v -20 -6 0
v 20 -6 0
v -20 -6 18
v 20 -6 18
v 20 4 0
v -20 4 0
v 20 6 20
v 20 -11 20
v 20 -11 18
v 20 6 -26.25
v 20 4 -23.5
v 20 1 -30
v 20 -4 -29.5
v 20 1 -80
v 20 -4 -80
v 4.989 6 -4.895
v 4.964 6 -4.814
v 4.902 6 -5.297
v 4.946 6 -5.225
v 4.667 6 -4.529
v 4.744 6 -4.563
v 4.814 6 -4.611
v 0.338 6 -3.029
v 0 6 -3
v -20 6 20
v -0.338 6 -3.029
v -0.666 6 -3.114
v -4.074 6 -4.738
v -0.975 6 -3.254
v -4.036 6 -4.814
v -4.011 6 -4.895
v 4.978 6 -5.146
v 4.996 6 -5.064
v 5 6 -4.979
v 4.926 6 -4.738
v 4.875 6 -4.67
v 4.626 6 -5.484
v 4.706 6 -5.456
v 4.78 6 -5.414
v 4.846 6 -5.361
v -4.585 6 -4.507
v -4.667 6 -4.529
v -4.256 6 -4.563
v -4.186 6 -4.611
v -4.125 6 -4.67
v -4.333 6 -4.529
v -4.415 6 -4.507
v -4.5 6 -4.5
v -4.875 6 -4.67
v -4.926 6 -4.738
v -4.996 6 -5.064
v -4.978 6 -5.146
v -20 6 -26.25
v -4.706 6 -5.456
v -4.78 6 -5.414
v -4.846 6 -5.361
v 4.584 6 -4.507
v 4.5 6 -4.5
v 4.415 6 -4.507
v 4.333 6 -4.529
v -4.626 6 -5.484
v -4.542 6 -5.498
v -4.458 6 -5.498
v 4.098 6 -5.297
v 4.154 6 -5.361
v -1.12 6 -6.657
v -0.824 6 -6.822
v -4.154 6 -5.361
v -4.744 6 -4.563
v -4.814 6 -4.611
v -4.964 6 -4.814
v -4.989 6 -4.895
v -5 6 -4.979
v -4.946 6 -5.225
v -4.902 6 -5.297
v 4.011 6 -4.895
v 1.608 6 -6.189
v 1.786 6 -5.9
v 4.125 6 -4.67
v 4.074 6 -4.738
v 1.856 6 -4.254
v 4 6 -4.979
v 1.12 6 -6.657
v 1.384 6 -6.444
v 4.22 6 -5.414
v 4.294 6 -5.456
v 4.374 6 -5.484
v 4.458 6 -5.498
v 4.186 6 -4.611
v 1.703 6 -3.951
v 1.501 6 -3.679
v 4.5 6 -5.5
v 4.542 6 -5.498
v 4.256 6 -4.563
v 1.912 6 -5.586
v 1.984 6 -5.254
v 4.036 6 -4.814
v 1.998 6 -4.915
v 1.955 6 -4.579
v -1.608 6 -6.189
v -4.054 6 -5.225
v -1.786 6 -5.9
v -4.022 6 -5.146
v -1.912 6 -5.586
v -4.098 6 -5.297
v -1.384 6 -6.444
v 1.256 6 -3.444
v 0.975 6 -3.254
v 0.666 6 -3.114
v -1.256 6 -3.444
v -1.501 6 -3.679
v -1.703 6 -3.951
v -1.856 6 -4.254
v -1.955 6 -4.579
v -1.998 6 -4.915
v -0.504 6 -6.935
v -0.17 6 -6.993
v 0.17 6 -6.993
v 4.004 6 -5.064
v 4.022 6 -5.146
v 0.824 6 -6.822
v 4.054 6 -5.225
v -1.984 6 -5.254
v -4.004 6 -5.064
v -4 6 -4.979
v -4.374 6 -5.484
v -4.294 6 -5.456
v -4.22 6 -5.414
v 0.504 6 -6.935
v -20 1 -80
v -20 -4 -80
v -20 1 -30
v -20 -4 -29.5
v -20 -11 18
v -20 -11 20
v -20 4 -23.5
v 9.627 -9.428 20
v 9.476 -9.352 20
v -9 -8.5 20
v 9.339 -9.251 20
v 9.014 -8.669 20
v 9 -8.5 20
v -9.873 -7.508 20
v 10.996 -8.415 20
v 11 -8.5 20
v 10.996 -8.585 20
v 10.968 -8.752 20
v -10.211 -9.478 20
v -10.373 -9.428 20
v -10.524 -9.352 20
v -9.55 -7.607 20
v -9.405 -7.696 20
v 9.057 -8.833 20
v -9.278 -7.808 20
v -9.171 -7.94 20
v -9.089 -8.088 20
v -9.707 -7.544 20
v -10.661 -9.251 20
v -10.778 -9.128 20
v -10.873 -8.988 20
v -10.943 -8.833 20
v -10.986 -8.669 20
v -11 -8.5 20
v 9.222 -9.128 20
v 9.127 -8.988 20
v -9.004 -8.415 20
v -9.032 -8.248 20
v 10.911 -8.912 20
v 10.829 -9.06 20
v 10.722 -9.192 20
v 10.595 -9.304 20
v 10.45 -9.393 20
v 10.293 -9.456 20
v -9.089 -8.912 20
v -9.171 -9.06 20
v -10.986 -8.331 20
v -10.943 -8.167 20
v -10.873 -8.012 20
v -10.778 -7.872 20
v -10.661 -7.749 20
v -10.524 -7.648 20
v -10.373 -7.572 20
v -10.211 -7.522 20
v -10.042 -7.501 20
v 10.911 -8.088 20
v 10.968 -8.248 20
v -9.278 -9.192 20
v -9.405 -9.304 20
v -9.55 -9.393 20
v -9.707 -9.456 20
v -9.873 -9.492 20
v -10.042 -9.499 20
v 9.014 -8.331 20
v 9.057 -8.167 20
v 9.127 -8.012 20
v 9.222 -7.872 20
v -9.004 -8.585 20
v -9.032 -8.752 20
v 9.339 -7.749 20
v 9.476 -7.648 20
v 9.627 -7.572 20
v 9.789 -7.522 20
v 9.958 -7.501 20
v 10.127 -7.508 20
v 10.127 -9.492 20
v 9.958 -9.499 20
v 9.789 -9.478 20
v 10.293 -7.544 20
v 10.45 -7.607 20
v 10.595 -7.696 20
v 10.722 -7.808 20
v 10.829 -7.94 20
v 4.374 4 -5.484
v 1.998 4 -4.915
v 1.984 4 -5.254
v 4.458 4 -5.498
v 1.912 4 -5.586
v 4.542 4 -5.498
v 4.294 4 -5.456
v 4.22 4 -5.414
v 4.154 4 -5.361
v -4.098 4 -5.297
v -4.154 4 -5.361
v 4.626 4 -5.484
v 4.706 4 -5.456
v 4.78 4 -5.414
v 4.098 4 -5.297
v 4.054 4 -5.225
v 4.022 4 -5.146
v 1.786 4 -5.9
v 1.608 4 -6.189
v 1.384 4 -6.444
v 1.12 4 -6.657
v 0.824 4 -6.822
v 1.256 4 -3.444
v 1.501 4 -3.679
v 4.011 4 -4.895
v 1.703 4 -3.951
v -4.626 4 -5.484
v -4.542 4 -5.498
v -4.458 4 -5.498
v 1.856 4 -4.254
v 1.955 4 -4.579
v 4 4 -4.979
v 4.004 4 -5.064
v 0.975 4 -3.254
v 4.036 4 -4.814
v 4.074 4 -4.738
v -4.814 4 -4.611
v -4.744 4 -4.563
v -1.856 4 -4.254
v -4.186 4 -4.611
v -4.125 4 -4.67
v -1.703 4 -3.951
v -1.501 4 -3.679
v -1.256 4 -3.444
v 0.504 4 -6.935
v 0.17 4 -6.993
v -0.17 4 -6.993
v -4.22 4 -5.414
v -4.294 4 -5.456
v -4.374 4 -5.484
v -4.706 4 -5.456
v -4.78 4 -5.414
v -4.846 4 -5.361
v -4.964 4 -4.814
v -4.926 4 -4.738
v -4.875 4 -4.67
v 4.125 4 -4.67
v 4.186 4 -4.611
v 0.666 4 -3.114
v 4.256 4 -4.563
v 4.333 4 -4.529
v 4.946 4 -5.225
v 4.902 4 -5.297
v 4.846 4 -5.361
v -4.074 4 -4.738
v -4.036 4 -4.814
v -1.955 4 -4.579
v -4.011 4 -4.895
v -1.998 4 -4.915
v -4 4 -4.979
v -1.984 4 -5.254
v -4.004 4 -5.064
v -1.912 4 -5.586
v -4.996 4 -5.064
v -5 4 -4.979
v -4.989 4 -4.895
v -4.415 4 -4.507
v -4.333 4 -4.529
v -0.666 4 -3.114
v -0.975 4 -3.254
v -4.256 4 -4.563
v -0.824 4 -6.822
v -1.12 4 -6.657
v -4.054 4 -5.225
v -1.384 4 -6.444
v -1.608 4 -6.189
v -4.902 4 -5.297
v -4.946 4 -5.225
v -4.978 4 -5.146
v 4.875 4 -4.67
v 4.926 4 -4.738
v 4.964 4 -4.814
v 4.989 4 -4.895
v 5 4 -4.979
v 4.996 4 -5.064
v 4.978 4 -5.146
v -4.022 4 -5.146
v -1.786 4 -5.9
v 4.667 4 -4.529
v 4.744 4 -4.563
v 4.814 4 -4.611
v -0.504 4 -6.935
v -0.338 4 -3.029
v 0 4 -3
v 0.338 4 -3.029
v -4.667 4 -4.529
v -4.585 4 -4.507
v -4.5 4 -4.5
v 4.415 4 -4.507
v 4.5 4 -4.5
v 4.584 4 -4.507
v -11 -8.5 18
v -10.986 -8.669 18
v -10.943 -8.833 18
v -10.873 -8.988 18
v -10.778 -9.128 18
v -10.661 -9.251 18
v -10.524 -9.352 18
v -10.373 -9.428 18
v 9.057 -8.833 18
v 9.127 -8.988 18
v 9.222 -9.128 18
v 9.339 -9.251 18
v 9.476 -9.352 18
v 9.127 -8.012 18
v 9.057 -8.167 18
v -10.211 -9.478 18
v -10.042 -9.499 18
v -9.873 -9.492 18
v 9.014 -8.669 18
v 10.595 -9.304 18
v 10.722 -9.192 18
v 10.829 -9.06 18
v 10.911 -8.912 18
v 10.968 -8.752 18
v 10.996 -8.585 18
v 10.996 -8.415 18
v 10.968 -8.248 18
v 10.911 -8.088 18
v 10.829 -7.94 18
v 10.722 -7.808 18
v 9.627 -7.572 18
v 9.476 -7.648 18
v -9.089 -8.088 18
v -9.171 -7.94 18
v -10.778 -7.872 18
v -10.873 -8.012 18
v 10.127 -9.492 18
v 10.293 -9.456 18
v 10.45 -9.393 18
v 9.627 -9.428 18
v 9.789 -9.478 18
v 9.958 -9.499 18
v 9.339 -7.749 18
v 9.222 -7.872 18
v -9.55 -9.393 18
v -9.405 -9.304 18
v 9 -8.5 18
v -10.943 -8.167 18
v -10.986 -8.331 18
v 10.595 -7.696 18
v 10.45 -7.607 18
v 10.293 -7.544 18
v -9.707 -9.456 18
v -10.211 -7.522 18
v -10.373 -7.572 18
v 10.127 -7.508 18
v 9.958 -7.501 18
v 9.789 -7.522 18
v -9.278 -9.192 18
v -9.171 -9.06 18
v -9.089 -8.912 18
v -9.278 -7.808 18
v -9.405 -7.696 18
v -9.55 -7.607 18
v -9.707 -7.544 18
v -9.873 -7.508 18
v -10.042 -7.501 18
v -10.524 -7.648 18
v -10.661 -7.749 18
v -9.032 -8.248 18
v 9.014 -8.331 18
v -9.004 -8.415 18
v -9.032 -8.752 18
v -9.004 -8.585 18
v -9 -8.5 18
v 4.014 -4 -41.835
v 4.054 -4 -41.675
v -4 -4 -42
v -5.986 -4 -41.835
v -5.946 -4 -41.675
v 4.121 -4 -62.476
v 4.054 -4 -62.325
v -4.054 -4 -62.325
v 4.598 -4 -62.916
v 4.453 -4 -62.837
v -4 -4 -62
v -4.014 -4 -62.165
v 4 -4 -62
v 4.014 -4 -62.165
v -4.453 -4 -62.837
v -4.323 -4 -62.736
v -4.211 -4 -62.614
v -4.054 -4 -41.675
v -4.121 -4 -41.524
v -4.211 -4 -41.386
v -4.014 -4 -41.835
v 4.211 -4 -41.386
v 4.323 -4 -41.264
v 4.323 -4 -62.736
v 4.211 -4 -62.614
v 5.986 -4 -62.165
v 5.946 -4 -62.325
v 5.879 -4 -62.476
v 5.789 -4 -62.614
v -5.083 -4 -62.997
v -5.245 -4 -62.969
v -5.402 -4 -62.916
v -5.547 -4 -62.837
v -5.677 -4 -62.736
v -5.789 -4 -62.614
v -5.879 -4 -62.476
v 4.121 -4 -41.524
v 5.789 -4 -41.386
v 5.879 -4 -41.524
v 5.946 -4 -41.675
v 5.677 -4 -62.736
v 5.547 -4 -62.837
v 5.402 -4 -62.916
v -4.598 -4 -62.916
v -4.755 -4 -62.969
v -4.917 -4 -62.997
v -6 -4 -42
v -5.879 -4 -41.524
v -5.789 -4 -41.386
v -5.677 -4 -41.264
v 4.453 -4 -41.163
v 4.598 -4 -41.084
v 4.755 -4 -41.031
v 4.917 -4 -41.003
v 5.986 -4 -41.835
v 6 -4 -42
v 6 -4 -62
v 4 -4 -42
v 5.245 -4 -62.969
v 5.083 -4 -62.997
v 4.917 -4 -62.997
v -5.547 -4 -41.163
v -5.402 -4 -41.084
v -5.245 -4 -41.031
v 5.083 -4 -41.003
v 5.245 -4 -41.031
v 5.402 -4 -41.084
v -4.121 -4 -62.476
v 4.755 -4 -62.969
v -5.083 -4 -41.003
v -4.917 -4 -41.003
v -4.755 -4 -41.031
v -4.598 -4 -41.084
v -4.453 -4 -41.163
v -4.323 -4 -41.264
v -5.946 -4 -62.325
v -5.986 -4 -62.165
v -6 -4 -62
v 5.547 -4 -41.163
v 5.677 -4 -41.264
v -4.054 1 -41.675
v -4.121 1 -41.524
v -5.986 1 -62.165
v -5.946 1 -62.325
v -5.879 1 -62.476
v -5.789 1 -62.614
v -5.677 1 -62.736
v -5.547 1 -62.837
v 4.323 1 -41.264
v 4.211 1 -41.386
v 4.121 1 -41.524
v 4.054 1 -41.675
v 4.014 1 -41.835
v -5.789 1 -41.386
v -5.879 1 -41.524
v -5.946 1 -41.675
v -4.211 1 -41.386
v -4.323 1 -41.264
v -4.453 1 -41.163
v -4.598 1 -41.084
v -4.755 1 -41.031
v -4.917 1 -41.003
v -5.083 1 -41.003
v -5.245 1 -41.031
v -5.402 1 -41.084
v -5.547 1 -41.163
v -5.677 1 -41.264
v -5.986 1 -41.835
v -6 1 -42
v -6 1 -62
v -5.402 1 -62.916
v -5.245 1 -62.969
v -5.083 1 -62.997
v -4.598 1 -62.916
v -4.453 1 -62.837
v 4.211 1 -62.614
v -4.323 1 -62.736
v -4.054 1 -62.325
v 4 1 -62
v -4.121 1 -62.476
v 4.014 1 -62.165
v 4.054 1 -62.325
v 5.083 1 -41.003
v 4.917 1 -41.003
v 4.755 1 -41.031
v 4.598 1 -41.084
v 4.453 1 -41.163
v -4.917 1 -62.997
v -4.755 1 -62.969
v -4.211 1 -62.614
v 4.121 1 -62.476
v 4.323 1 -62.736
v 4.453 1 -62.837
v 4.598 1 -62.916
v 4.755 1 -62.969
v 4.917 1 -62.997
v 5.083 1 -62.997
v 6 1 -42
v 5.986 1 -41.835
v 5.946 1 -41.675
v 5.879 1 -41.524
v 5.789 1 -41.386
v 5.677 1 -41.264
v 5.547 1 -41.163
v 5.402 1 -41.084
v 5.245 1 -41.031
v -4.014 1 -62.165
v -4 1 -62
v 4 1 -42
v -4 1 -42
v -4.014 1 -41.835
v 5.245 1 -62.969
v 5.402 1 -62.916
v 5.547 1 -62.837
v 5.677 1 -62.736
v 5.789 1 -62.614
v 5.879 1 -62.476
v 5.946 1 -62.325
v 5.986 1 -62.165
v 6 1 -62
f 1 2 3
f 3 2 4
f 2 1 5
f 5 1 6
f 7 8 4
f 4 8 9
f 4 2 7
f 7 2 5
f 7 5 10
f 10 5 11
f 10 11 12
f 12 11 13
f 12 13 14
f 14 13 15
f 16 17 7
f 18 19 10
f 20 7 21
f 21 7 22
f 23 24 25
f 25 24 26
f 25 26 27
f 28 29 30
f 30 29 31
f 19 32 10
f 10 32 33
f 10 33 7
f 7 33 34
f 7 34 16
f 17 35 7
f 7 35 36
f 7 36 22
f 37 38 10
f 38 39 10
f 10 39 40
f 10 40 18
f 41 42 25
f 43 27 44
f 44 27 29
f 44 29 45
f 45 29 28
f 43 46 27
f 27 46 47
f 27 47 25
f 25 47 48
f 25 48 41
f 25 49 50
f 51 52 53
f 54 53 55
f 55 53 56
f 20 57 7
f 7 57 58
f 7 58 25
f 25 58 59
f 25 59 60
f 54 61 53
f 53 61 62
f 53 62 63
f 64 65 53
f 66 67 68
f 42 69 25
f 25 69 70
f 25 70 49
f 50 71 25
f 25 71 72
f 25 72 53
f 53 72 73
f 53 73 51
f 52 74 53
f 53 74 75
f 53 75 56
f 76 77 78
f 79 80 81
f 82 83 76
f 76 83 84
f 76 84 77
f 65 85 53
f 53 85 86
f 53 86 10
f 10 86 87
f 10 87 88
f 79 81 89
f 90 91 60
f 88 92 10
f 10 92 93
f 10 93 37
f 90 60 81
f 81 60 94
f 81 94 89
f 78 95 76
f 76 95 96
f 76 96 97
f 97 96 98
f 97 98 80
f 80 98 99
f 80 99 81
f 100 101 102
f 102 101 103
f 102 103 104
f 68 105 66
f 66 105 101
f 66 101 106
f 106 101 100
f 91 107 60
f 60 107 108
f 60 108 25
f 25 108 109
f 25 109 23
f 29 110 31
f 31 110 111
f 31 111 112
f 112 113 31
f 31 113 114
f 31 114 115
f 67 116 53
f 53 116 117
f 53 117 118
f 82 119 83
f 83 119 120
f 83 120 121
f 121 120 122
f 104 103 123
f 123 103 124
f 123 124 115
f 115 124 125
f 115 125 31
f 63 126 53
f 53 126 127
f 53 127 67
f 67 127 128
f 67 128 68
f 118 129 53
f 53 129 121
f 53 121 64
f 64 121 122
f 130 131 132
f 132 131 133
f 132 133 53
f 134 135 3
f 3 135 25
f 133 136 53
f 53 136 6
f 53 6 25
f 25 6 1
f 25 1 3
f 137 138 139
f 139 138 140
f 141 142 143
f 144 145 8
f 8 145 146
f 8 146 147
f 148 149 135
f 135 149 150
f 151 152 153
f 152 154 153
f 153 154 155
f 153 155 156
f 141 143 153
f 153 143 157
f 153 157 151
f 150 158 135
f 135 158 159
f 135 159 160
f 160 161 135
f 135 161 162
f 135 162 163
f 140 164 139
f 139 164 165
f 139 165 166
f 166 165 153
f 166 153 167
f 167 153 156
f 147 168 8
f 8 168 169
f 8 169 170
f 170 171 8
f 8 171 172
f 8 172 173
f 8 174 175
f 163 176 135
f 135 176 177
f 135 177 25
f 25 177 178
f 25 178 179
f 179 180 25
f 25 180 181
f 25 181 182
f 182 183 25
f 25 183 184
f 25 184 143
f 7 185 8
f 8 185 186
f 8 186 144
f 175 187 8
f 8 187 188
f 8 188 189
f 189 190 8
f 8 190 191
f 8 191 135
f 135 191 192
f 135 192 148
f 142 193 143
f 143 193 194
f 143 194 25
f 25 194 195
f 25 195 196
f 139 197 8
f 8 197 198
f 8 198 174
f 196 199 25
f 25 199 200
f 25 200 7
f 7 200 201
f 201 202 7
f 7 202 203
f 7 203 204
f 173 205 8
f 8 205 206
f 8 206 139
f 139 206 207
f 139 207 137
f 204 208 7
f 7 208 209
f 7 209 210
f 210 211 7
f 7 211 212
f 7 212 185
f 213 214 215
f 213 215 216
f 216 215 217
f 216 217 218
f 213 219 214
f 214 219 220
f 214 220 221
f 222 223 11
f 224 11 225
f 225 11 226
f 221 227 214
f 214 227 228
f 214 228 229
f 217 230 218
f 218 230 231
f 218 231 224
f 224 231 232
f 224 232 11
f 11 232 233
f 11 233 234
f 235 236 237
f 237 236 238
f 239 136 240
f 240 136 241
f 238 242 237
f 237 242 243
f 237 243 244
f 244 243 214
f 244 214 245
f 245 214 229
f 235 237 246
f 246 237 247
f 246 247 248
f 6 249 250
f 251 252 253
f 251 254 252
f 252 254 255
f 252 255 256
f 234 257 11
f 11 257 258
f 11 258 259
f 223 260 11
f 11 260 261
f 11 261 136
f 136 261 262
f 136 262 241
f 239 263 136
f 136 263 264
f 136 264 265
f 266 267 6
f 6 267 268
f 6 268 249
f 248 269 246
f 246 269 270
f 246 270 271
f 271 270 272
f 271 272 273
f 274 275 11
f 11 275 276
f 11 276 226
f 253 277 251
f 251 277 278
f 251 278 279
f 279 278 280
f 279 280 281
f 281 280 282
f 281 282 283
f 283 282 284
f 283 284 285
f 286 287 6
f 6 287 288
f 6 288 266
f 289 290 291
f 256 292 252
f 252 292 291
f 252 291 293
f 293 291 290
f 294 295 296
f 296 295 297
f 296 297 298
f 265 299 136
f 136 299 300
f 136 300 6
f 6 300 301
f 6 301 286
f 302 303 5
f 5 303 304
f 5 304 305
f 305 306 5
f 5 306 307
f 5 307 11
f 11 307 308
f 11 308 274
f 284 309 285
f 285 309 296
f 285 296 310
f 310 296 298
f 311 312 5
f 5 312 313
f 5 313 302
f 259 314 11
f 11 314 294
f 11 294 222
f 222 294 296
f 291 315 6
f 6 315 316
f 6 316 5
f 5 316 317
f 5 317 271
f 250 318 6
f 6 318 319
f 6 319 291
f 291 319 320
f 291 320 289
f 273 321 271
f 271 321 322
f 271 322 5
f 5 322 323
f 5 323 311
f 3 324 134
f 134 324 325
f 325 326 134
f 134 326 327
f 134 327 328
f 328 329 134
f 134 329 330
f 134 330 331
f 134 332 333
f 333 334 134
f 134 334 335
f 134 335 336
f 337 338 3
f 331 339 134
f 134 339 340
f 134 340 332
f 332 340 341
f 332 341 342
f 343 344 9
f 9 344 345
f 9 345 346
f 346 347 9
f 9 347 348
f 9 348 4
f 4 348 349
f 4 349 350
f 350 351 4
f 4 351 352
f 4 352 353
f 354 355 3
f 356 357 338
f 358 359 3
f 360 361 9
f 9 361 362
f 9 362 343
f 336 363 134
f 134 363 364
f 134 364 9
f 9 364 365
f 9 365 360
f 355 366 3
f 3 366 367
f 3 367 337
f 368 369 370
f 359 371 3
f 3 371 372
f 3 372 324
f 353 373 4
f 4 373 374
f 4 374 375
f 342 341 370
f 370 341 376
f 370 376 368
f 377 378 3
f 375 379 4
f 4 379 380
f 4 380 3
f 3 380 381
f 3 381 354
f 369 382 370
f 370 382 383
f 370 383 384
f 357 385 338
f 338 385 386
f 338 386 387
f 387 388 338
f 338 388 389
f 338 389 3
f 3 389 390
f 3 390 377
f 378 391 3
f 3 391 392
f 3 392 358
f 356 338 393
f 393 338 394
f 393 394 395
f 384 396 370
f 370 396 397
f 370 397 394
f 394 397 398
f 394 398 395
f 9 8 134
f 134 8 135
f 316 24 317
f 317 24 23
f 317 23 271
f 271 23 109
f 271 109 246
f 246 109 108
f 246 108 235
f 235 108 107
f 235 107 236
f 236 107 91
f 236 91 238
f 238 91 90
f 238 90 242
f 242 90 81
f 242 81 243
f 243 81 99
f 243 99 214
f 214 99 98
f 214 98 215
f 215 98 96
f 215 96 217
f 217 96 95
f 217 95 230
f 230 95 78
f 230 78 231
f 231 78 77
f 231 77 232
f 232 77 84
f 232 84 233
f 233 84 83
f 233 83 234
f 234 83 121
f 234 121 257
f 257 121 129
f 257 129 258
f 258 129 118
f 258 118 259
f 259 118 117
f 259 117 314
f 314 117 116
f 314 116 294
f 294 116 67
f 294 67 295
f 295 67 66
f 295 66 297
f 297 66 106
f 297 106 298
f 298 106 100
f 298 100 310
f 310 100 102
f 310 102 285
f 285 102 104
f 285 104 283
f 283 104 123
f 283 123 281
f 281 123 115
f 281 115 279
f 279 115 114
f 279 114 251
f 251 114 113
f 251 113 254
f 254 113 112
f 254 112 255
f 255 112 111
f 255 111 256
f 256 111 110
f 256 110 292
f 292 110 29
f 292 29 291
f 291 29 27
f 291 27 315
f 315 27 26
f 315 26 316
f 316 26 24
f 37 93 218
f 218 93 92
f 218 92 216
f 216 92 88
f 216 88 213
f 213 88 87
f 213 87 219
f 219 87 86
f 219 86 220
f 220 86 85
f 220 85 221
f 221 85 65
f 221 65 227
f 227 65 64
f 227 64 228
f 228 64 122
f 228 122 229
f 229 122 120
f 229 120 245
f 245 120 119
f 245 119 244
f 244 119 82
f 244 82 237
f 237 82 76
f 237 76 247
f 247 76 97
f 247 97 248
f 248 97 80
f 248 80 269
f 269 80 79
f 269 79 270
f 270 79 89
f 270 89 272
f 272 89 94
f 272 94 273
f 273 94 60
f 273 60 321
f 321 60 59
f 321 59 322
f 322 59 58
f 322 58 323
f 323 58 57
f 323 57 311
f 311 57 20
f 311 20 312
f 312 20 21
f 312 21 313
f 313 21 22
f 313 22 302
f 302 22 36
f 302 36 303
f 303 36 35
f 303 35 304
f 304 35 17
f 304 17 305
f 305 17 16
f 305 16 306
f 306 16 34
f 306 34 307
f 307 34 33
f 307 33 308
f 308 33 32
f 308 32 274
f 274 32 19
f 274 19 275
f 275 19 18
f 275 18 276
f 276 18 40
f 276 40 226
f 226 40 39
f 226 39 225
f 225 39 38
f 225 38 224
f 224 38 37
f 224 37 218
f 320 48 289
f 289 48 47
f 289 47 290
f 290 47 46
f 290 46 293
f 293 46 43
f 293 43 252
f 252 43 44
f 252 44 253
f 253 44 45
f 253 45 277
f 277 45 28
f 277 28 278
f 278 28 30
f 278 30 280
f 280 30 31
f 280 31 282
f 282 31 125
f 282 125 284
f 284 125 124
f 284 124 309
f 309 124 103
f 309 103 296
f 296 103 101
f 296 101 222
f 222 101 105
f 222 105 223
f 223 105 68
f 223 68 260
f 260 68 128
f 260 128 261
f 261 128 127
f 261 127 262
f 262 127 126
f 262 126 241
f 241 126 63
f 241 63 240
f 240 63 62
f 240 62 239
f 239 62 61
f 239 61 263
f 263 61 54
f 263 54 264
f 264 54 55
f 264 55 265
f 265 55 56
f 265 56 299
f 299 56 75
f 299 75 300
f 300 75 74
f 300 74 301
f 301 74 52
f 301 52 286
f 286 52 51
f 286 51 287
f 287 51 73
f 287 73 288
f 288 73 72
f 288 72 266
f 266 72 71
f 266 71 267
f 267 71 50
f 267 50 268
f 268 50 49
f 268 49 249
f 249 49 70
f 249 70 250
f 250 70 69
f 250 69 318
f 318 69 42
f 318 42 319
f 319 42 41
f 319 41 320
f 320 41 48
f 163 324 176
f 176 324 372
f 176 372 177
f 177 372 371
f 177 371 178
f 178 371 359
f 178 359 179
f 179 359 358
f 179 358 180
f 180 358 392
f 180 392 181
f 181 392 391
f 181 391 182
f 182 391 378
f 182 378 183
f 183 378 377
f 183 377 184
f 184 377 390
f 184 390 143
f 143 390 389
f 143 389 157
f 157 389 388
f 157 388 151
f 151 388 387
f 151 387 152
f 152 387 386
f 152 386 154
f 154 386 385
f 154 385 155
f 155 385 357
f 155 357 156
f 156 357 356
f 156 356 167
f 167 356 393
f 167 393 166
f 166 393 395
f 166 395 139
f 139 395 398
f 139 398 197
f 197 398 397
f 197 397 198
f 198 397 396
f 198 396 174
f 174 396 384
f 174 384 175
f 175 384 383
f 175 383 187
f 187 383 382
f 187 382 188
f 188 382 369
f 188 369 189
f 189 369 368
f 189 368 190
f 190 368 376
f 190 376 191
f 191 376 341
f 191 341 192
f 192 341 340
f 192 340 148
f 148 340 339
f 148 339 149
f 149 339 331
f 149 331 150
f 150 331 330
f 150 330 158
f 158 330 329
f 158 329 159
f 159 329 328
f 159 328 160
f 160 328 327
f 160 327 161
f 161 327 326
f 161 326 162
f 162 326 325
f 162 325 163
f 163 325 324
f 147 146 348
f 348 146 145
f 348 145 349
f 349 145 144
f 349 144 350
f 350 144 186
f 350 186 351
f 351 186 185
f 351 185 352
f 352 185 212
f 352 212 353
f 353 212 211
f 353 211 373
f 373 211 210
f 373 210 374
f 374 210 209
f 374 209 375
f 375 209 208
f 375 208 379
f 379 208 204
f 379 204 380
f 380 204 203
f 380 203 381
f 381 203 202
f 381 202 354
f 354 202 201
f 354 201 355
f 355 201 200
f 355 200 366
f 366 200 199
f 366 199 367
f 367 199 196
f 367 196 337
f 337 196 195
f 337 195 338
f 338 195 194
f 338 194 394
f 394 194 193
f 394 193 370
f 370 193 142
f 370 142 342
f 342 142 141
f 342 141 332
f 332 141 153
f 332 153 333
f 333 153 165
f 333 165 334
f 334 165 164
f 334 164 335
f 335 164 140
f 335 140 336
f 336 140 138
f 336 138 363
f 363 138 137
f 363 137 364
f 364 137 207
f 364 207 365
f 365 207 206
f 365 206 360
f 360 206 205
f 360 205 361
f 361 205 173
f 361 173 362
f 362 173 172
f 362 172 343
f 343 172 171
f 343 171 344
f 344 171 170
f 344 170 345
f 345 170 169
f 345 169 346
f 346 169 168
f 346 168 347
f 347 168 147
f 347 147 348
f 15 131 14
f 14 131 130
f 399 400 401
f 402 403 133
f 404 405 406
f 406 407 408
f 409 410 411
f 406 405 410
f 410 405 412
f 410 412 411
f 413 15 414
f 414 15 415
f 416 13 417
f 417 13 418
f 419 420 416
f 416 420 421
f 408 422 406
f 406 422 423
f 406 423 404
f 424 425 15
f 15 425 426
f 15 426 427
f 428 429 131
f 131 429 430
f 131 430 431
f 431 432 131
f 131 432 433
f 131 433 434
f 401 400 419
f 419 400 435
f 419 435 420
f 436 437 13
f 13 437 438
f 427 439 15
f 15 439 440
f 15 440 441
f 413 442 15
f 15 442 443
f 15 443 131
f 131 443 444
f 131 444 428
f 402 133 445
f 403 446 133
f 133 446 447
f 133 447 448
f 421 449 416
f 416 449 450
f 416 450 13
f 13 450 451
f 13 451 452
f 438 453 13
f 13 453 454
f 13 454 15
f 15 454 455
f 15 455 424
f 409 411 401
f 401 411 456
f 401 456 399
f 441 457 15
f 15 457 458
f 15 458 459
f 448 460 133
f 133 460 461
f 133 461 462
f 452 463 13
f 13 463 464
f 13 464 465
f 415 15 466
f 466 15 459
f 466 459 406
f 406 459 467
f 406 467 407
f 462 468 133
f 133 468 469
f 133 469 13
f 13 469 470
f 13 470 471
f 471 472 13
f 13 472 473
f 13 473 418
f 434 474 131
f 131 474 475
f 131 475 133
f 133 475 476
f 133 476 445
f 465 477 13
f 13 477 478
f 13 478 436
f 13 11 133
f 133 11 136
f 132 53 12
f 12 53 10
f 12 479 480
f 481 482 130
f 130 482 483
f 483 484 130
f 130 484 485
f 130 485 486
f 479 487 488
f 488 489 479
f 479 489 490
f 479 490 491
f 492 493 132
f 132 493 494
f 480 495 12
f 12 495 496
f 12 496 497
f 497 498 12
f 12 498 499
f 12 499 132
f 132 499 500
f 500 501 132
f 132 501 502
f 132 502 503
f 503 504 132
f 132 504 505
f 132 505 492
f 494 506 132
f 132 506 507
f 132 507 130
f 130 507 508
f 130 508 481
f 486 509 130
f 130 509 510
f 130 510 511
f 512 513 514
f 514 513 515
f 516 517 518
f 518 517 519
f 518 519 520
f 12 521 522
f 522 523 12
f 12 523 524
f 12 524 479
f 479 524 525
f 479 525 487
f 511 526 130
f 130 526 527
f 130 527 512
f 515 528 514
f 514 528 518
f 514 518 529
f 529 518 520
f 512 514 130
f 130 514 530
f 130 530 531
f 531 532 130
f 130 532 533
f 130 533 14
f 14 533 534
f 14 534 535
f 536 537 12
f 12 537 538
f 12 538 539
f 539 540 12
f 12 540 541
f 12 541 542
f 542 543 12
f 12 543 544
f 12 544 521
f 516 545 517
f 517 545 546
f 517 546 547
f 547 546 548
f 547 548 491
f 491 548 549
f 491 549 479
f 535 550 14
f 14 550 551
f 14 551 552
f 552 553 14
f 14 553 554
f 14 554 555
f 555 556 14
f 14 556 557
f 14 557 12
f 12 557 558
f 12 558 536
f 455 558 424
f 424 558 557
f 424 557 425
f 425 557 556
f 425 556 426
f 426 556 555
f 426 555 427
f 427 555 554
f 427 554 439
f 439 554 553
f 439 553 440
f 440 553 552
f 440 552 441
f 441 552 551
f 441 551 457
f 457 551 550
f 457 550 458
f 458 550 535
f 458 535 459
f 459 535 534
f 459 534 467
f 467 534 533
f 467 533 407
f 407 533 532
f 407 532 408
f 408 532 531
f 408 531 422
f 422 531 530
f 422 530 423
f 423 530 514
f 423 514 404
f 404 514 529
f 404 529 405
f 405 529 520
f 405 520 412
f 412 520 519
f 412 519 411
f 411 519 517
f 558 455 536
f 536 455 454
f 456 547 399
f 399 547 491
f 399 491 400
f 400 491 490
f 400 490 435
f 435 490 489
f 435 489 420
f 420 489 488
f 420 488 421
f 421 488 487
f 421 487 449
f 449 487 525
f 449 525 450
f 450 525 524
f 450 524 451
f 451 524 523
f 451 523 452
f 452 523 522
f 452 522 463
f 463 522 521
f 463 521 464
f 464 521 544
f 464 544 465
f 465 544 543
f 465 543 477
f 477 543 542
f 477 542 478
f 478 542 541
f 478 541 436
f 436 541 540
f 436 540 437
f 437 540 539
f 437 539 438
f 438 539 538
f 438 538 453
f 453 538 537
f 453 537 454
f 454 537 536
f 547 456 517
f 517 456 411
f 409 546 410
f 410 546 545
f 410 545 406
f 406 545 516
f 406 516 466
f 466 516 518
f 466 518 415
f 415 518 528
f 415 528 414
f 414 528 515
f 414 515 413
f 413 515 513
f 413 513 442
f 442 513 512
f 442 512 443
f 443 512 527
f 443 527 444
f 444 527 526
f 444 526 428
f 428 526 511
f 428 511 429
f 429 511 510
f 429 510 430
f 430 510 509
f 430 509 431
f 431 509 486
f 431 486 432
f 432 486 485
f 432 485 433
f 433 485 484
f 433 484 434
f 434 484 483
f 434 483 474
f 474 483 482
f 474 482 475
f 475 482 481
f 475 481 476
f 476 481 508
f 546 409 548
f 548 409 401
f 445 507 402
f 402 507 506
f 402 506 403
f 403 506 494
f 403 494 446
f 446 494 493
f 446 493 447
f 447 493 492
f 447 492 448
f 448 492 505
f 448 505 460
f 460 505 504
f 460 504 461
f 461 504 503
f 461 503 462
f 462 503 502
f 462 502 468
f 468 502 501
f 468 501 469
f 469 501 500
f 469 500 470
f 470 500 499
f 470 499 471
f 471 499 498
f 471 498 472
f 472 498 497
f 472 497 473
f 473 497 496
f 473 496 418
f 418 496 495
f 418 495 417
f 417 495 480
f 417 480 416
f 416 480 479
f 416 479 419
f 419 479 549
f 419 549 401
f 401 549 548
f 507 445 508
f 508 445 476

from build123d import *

# Parameters (mm, degrees)
SKETCH_1_W          = 40
SKETCH_1_H          = 12
EXTRUDE_1_DEPTH     = 20
SKETCH_2_W          = 40
SKETCH_2_H          = 2
EXTRUDE_2_DEPTH     = 23.5
SKETCH_3_W          = 40
SKETCH_3_H          = 2
EXTRUDE_3_DEPTH     = 5
CUT_EXTRUDE_1_REACH = 19
SKETCH_4_R          = 0.5
SKETCH_4_R_2        = 2
CUT_EXTRUDE_2_REACH = 4
SKETCH_5_R          = 1
EXTRUDE_4_DEPTH     = 40
CUT_EXTRUDE_3_DEPTH = 40
CUT_EXTRUDE_5_REACH = 14


with BuildPart() as part:
    # 草图1 → 凸台-拉伸1 (new body)
    with BuildSketch(Plane.XY):
        Rectangle(SKETCH_1_W, SKETCH_1_H)
    extrude(amount=EXTRUDE_1_DEPTH)

    # 草图2 → 凸台-拉伸2 (add)
    with BuildSketch(Plane(origin=(0, 0, 0), x_dir=(-1, 0, 0), z_dir=(0, 0, -1))):
        with Locations((0, 5)):
            Rectangle(SKETCH_2_W, SKETCH_2_H)
    extrude(amount=EXTRUDE_2_DEPTH)

    # 草图3 → 凸台-拉伸3 (add)
    with BuildSketch(Plane.XZ.offset(6)):
        with Locations((0, 19)):
            Rectangle(SKETCH_3_W, SKETCH_3_H)
    extrude(amount=EXTRUDE_3_DEPTH)

    # 草图4 → 切除-拉伸1 (cut, up to next)
    with BuildSketch(Plane(origin=(0, 6, 0), x_dir=(1, 0, 0), z_dir=(0, 1, 0)), mode=Mode.PRIVATE) as cut_extrude_1_sk1:
        with Locations((-4.5, 5)):
            Circle(SKETCH_4_R)
    cut_extrude_1_tool1 = extrude(cut_extrude_1_sk1.sketch, amount=-CUT_EXTRUDE_1_REACH, mode=Mode.PRIVATE) & part.part
    add(cut_extrude_1_tool1.solids().sort_by_distance((-4.5, 6, -5))[0], mode=Mode.SUBTRACT)
    # 草图4 → 切除-拉伸1 (cut, up to next)
    with BuildSketch(Plane(origin=(0, 6, 0), x_dir=(1, 0, 0), z_dir=(0, 1, 0)), mode=Mode.PRIVATE) as cut_extrude_1_sk2:
        with Locations((4.5, 5)):
            Circle(SKETCH_4_R)
    cut_extrude_1_tool2 = extrude(cut_extrude_1_sk2.sketch, amount=-CUT_EXTRUDE_1_REACH, mode=Mode.PRIVATE) & part.part
    add(cut_extrude_1_tool2.solids().sort_by_distance((4.5, 6, -5))[0], mode=Mode.SUBTRACT)
    # 草图4 → 切除-拉伸1 (cut, up to next)
    with BuildSketch(Plane(origin=(0, 6, 0), x_dir=(1, 0, 0), z_dir=(0, 1, 0)), mode=Mode.PRIVATE) as cut_extrude_1_sk3:
        with Locations((0, 5)):
            Circle(SKETCH_4_R_2)
    cut_extrude_1_tool3 = extrude(cut_extrude_1_sk3.sketch, amount=-CUT_EXTRUDE_1_REACH, mode=Mode.PRIVATE) & part.part
    add(cut_extrude_1_tool3.solids().sort_by_distance((0, 6, -5))[0], mode=Mode.SUBTRACT)

    # 草图5 → 切除-拉伸2 (cut, up to next)
    with BuildSketch(Plane(origin=(0, 0, 18), x_dir=(-1, 0, 0), z_dir=(0, 0, -1)), mode=Mode.PRIVATE) as cut_extrude_2_sk1:
        with Locations((-10, -8.5)):
            Circle(SKETCH_5_R)
    cut_extrude_2_tool1 = extrude(cut_extrude_2_sk1.sketch, amount=-CUT_EXTRUDE_2_REACH, mode=Mode.PRIVATE) & part.part
    add(cut_extrude_2_tool1.solids().sort_by_distance((10, -8.5, 18))[0], mode=Mode.SUBTRACT)
    # 草图5 → 切除-拉伸2 (cut, up to next)
    with BuildSketch(Plane(origin=(0, 0, 18), x_dir=(-1, 0, 0), z_dir=(0, 0, -1)), mode=Mode.PRIVATE) as cut_extrude_2_sk2:
        with Locations((10, -8.5)):
            Circle(SKETCH_5_R)
    cut_extrude_2_tool2 = extrude(cut_extrude_2_sk2.sketch, amount=-CUT_EXTRUDE_2_REACH, mode=Mode.PRIVATE) & part.part
    add(cut_extrude_2_tool2.solids().sort_by_distance((-10, -8.5, 18))[0], mode=Mode.SUBTRACT)

    # 草图6 → 凸台-拉伸4 (add)
    with BuildSketch(Plane(origin=(20, 0, 0), x_dir=(0, 0, -1), z_dir=(1, 0, 0))):
        Polygon((23.5, 4), (29.5, -4), (80, -4), (80, 6), (23.5, 6), align=None)
    extrude(amount=-EXTRUDE_4_DEPTH)

    # 草图7 → 切除-拉伸3 (cut)
    with BuildSketch(Plane.ZY.offset(20)):
        Polygon((-30, 1), (-26.25, 6), (-80, 6), (-80, 1), align=None)
    extrude(amount=-CUT_EXTRUDE_3_DEPTH, mode=Mode.SUBTRACT)

    # 草图9 → 切除-拉伸5 (cut, up to next)
    with BuildSketch(Plane(origin=(0, 1, 0), x_dir=(1, 0, 0), z_dir=(0, 1, 0)), mode=Mode.PRIVATE) as cut_extrude_5_sk1:
        with BuildLine():
            Line((-4, 62), (-4, 42))
            ThreePointArc((-4, 42), (-5, 41), (-6, 42))
            Line((-6, 42), (-6, 62))
            ThreePointArc((-6, 62), (-5, 63), (-4, 62))
        make_face()
    cut_extrude_5_tool1 = extrude(cut_extrude_5_sk1.sketch, amount=-CUT_EXTRUDE_5_REACH, mode=Mode.PRIVATE) & part.part
    add(cut_extrude_5_tool1.solids().sort_by_distance((-5, 1, -52))[0], mode=Mode.SUBTRACT)
    # 草图9 → 切除-拉伸5 (cut, up to next)
    with BuildSketch(Plane(origin=(0, 1, 0), x_dir=(1, 0, 0), z_dir=(0, 1, 0)), mode=Mode.PRIVATE) as cut_extrude_5_sk2:
        with BuildLine():
            Line((4, 62), (4, 42))
            ThreePointArc((4, 42), (5, 41), (6, 42))
            Line((6, 42), (6, 62))
            ThreePointArc((6, 62), (5, 63), (4, 62))
        make_face()
    cut_extrude_5_tool2 = extrude(cut_extrude_5_sk2.sketch, amount=-CUT_EXTRUDE_5_REACH, mode=Mode.PRIVATE) & part.part
    add(cut_extrude_5_tool2.solids().sort_by_distance((5, 1, -52))[0], mode=Mode.SUBTRACT)


solid = part.part
